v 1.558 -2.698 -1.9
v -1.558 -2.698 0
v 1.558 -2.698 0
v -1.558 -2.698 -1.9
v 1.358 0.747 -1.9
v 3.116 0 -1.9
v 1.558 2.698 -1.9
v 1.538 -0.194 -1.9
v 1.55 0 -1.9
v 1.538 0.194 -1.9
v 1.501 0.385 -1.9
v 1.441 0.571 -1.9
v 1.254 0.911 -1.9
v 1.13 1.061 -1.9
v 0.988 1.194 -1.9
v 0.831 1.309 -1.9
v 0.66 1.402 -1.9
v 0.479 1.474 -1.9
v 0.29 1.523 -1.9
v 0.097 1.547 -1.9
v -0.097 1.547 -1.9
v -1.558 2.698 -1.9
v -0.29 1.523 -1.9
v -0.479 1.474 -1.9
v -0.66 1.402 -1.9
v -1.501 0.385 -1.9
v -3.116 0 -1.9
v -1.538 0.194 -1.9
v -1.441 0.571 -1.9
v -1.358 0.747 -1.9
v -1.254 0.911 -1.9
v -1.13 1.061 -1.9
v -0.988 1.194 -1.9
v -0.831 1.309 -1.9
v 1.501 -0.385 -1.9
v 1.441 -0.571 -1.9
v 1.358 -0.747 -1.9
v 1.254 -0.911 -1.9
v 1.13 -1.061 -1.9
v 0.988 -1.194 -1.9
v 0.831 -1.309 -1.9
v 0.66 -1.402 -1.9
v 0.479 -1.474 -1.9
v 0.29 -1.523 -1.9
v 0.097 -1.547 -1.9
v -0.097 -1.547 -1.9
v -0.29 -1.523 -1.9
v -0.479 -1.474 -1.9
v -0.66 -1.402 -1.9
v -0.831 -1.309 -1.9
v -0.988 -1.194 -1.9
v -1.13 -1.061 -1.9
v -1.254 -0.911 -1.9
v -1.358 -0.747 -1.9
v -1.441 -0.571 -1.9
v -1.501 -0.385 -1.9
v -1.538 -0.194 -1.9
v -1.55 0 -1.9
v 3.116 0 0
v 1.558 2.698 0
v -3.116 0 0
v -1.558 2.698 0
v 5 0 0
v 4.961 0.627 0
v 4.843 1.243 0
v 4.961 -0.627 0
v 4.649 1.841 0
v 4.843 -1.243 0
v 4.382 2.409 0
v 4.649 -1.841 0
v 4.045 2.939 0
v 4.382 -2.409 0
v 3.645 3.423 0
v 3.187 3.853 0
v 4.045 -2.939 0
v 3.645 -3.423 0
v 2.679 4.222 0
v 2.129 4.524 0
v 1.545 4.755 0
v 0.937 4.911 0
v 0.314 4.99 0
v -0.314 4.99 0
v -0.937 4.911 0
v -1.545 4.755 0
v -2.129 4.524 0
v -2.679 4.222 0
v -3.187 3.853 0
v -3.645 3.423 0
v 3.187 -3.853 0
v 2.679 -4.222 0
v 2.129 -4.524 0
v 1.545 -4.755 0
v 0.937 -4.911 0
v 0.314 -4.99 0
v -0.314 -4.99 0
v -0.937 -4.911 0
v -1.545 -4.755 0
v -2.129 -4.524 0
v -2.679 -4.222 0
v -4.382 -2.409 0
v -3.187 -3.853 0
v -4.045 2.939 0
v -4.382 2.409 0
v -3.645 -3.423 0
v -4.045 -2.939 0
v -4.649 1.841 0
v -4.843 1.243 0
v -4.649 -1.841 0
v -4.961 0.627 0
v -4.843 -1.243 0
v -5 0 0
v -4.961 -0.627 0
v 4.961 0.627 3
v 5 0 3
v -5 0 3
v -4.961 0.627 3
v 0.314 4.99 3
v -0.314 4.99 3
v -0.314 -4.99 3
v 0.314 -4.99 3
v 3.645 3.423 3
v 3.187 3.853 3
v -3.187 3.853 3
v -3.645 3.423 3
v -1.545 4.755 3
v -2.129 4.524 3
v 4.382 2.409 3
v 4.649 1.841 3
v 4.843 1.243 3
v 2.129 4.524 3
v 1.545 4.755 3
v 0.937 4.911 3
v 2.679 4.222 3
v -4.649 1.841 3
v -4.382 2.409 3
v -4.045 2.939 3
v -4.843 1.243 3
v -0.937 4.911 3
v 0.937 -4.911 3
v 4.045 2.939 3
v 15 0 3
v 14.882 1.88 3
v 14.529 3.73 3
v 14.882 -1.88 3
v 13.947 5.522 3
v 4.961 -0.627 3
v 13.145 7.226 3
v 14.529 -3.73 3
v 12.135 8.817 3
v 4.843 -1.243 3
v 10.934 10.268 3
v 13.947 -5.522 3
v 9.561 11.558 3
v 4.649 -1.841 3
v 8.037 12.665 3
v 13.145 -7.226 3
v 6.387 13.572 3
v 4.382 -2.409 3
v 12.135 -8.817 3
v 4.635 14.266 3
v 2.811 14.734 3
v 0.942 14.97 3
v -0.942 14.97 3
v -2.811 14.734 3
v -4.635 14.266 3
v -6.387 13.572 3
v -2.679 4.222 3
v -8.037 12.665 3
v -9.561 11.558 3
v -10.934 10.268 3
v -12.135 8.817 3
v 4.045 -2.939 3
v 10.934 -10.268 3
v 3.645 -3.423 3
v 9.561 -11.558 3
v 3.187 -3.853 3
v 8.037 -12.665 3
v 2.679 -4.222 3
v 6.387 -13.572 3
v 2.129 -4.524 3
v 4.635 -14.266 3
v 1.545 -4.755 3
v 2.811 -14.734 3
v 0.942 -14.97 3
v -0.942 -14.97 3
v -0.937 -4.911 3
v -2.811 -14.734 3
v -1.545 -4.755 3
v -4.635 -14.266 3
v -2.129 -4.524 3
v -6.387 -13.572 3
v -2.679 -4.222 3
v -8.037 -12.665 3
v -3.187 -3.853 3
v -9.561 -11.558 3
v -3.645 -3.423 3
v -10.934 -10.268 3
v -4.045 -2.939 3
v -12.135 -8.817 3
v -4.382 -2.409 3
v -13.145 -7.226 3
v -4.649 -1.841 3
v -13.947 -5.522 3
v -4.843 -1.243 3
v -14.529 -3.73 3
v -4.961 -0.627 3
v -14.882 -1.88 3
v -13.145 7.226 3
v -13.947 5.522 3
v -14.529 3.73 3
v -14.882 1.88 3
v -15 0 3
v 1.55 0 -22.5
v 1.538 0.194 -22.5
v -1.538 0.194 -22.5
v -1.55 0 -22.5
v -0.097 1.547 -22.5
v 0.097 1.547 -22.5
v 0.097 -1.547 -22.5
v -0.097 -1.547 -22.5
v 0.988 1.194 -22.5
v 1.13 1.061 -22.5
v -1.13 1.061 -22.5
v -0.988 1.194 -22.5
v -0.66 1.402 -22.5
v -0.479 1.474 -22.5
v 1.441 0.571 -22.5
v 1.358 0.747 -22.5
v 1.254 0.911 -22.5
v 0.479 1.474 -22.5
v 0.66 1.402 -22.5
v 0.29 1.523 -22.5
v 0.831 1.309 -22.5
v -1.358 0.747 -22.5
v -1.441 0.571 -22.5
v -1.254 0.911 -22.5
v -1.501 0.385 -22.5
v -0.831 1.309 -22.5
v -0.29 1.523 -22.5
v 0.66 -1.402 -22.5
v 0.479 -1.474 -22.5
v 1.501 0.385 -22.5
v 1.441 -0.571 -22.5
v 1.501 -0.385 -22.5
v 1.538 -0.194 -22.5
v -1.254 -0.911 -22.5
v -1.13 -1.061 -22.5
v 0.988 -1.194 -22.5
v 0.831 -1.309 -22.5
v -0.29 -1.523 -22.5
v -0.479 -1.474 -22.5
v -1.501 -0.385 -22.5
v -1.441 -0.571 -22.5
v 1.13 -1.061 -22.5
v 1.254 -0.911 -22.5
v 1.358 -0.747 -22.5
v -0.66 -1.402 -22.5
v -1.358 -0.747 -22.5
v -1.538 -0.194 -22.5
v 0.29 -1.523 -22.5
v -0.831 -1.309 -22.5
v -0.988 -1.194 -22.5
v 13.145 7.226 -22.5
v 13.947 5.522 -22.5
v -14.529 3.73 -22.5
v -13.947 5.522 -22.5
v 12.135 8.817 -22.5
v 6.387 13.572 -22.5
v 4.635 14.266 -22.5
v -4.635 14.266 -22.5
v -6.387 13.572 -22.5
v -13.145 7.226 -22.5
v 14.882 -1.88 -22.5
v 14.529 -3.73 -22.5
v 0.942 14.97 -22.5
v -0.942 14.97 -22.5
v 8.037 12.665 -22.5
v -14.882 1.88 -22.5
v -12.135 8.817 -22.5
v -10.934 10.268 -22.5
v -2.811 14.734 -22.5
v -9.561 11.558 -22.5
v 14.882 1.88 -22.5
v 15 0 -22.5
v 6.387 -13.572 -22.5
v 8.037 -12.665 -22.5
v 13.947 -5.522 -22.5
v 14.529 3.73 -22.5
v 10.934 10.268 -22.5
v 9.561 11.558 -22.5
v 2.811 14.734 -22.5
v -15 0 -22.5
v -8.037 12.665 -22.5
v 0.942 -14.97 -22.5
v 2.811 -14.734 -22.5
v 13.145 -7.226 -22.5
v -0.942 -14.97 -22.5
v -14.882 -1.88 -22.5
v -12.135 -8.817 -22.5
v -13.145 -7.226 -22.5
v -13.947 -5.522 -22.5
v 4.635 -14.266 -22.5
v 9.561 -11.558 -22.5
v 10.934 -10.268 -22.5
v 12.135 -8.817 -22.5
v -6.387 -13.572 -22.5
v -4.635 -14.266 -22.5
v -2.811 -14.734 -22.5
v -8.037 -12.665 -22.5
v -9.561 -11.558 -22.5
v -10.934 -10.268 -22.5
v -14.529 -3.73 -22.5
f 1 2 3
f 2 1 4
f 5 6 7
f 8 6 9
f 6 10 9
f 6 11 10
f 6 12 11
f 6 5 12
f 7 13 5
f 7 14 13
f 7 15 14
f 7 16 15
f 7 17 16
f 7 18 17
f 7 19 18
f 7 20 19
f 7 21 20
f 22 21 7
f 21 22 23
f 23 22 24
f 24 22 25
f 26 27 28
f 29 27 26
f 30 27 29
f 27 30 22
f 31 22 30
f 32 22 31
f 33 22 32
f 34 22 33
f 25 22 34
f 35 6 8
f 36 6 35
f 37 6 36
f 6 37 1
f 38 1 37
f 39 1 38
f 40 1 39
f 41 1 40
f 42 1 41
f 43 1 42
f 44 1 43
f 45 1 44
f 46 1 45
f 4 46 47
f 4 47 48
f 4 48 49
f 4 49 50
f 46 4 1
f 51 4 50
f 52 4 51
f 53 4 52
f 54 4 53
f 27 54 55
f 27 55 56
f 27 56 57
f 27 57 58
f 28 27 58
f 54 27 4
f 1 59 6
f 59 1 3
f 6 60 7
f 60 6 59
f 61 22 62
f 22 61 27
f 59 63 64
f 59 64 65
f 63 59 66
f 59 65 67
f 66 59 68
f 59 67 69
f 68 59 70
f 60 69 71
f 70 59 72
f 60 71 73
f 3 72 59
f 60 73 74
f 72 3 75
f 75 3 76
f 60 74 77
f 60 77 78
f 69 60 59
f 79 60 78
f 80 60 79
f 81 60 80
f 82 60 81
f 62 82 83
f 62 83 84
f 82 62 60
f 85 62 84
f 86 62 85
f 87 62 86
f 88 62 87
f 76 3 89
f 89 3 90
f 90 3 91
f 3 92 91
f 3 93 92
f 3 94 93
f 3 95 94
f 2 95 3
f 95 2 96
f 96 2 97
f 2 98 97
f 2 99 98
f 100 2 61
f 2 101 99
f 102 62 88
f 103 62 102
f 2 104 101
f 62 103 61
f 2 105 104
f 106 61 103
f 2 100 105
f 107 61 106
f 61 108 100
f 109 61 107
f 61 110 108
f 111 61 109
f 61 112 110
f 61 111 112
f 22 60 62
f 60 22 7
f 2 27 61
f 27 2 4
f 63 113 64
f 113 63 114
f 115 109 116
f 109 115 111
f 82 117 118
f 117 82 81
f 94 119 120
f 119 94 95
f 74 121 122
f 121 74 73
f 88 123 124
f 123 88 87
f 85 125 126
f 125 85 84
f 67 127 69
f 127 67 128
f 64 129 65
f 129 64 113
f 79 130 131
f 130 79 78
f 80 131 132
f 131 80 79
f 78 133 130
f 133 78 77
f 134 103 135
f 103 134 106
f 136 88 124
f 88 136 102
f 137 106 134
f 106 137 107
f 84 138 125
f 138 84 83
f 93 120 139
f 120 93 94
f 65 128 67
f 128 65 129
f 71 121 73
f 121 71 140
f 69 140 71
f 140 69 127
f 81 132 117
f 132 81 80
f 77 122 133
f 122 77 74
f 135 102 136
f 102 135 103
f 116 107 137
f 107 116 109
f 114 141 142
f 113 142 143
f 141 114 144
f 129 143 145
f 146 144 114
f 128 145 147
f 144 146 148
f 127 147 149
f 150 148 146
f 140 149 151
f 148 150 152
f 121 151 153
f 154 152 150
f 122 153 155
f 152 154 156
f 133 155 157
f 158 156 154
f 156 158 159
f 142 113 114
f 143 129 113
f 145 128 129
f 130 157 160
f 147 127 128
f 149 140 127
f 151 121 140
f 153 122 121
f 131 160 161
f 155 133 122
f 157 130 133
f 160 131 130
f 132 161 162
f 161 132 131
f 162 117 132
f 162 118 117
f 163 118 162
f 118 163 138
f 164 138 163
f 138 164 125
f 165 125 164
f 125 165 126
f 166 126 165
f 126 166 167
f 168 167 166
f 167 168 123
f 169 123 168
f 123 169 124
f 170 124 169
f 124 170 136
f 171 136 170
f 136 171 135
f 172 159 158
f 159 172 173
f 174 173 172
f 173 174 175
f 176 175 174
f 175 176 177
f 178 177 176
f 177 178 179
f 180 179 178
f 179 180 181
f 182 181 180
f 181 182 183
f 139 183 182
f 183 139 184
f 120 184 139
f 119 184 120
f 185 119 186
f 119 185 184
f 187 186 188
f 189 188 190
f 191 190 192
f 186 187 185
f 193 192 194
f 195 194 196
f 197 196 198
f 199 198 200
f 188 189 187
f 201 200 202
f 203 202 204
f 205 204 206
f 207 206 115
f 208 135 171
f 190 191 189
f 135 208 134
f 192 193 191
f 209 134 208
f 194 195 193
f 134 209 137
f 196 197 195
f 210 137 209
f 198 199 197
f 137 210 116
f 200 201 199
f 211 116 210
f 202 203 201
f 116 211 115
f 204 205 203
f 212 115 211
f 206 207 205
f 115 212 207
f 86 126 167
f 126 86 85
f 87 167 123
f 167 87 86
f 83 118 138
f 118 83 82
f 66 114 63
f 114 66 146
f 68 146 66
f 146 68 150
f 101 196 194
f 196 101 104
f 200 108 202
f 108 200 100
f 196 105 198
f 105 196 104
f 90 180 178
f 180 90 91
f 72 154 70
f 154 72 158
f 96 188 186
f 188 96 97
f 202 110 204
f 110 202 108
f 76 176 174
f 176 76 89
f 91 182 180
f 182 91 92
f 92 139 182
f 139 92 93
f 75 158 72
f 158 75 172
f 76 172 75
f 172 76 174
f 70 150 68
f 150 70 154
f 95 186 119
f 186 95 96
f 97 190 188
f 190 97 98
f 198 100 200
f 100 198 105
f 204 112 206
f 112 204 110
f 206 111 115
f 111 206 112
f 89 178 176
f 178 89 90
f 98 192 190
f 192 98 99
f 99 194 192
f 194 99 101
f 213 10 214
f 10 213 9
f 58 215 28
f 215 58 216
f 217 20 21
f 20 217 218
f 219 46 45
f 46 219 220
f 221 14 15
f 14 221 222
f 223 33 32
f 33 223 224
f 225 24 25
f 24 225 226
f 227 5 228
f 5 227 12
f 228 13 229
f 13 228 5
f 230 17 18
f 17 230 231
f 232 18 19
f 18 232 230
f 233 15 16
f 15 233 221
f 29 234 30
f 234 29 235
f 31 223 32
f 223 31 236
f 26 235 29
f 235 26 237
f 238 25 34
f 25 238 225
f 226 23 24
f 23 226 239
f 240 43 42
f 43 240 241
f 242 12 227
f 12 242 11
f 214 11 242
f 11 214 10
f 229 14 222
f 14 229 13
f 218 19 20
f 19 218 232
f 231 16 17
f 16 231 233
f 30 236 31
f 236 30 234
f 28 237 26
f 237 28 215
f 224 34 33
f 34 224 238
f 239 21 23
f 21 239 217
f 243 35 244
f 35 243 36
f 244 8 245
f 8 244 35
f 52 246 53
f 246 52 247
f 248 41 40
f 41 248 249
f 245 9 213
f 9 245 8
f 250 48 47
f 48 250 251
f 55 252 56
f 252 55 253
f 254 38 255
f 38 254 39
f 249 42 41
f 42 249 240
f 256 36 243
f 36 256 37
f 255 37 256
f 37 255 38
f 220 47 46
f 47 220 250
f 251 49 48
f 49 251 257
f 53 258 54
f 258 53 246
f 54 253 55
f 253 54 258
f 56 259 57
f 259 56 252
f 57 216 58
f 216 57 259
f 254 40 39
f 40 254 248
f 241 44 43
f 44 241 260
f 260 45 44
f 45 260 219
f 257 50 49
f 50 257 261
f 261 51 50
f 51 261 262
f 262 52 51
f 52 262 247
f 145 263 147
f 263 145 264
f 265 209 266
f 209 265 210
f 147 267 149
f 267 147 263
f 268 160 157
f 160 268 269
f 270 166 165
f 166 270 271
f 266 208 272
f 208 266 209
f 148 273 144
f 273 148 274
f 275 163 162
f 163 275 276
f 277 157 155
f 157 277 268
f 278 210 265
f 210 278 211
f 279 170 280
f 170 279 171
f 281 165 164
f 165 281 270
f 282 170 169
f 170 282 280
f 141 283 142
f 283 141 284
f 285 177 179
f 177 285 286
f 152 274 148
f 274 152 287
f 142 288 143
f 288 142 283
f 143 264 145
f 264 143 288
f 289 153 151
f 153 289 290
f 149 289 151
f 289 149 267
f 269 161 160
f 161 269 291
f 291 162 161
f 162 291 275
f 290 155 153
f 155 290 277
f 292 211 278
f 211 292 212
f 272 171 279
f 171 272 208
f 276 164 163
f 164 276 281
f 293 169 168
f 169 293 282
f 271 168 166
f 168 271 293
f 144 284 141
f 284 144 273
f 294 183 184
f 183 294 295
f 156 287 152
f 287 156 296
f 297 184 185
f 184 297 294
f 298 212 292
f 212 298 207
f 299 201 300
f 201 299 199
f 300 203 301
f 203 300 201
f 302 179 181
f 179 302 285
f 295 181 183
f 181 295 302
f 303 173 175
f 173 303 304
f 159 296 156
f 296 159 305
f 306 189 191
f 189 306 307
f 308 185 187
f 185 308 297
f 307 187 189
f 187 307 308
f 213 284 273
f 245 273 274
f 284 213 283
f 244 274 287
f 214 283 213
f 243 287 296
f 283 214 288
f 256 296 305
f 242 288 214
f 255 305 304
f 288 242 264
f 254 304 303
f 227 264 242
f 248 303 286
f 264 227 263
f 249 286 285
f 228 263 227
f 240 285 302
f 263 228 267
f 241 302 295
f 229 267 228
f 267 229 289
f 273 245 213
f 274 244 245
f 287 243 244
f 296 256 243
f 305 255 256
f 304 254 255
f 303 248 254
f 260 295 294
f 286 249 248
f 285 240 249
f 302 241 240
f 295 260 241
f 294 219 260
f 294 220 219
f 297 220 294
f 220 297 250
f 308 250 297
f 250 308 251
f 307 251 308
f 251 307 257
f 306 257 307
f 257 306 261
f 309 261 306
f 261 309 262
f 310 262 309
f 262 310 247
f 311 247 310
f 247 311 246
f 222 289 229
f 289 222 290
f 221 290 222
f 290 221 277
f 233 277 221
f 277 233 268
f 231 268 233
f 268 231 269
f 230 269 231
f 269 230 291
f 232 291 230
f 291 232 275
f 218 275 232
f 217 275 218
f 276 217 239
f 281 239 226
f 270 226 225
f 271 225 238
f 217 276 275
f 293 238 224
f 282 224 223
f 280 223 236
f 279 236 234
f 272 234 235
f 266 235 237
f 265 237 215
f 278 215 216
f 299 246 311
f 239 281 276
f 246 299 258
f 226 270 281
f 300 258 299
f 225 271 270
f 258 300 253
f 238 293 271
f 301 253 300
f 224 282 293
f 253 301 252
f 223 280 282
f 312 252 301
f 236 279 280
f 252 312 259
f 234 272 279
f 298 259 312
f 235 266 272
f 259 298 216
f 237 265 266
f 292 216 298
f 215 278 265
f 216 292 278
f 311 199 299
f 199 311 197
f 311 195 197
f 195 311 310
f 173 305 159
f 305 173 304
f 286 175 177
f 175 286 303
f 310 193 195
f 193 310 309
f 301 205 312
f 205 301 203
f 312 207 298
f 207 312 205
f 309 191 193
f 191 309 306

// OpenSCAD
$fn = 50;

difference() {
	union() {
		translate(v = [0, 0, -22.5]) {
			cylinder(h = 25.5, r = 15.0);
		}
	}
	union() {
		translate(v = [0, 0, 0]) {
			rotate(a = [0, 0, 0]) {
				difference() {
					union() {
						translate(v = [0, 0, -1.9]) {
							linear_extrude(height = 1.9) {
								polygon(points = [[3.1158, 0.0], [1.5579000000000005, 2.698361953111554], [-1.5578999999999994, 2.6983619531115544], [-3.1158, 3.815754496783323e-16], [-1.5579000000000014, -2.6983619531115535], [1.557899999999998, -2.6983619531115552]]);
							}
						}
					}
					union();
				}
			}
		}
		#cylinder(h = 3, r = 5.0);
		#translate(v = [0, 0, -100.0]) {
			cylinder(h = 200, r = 1.55);
		}
	}
}
